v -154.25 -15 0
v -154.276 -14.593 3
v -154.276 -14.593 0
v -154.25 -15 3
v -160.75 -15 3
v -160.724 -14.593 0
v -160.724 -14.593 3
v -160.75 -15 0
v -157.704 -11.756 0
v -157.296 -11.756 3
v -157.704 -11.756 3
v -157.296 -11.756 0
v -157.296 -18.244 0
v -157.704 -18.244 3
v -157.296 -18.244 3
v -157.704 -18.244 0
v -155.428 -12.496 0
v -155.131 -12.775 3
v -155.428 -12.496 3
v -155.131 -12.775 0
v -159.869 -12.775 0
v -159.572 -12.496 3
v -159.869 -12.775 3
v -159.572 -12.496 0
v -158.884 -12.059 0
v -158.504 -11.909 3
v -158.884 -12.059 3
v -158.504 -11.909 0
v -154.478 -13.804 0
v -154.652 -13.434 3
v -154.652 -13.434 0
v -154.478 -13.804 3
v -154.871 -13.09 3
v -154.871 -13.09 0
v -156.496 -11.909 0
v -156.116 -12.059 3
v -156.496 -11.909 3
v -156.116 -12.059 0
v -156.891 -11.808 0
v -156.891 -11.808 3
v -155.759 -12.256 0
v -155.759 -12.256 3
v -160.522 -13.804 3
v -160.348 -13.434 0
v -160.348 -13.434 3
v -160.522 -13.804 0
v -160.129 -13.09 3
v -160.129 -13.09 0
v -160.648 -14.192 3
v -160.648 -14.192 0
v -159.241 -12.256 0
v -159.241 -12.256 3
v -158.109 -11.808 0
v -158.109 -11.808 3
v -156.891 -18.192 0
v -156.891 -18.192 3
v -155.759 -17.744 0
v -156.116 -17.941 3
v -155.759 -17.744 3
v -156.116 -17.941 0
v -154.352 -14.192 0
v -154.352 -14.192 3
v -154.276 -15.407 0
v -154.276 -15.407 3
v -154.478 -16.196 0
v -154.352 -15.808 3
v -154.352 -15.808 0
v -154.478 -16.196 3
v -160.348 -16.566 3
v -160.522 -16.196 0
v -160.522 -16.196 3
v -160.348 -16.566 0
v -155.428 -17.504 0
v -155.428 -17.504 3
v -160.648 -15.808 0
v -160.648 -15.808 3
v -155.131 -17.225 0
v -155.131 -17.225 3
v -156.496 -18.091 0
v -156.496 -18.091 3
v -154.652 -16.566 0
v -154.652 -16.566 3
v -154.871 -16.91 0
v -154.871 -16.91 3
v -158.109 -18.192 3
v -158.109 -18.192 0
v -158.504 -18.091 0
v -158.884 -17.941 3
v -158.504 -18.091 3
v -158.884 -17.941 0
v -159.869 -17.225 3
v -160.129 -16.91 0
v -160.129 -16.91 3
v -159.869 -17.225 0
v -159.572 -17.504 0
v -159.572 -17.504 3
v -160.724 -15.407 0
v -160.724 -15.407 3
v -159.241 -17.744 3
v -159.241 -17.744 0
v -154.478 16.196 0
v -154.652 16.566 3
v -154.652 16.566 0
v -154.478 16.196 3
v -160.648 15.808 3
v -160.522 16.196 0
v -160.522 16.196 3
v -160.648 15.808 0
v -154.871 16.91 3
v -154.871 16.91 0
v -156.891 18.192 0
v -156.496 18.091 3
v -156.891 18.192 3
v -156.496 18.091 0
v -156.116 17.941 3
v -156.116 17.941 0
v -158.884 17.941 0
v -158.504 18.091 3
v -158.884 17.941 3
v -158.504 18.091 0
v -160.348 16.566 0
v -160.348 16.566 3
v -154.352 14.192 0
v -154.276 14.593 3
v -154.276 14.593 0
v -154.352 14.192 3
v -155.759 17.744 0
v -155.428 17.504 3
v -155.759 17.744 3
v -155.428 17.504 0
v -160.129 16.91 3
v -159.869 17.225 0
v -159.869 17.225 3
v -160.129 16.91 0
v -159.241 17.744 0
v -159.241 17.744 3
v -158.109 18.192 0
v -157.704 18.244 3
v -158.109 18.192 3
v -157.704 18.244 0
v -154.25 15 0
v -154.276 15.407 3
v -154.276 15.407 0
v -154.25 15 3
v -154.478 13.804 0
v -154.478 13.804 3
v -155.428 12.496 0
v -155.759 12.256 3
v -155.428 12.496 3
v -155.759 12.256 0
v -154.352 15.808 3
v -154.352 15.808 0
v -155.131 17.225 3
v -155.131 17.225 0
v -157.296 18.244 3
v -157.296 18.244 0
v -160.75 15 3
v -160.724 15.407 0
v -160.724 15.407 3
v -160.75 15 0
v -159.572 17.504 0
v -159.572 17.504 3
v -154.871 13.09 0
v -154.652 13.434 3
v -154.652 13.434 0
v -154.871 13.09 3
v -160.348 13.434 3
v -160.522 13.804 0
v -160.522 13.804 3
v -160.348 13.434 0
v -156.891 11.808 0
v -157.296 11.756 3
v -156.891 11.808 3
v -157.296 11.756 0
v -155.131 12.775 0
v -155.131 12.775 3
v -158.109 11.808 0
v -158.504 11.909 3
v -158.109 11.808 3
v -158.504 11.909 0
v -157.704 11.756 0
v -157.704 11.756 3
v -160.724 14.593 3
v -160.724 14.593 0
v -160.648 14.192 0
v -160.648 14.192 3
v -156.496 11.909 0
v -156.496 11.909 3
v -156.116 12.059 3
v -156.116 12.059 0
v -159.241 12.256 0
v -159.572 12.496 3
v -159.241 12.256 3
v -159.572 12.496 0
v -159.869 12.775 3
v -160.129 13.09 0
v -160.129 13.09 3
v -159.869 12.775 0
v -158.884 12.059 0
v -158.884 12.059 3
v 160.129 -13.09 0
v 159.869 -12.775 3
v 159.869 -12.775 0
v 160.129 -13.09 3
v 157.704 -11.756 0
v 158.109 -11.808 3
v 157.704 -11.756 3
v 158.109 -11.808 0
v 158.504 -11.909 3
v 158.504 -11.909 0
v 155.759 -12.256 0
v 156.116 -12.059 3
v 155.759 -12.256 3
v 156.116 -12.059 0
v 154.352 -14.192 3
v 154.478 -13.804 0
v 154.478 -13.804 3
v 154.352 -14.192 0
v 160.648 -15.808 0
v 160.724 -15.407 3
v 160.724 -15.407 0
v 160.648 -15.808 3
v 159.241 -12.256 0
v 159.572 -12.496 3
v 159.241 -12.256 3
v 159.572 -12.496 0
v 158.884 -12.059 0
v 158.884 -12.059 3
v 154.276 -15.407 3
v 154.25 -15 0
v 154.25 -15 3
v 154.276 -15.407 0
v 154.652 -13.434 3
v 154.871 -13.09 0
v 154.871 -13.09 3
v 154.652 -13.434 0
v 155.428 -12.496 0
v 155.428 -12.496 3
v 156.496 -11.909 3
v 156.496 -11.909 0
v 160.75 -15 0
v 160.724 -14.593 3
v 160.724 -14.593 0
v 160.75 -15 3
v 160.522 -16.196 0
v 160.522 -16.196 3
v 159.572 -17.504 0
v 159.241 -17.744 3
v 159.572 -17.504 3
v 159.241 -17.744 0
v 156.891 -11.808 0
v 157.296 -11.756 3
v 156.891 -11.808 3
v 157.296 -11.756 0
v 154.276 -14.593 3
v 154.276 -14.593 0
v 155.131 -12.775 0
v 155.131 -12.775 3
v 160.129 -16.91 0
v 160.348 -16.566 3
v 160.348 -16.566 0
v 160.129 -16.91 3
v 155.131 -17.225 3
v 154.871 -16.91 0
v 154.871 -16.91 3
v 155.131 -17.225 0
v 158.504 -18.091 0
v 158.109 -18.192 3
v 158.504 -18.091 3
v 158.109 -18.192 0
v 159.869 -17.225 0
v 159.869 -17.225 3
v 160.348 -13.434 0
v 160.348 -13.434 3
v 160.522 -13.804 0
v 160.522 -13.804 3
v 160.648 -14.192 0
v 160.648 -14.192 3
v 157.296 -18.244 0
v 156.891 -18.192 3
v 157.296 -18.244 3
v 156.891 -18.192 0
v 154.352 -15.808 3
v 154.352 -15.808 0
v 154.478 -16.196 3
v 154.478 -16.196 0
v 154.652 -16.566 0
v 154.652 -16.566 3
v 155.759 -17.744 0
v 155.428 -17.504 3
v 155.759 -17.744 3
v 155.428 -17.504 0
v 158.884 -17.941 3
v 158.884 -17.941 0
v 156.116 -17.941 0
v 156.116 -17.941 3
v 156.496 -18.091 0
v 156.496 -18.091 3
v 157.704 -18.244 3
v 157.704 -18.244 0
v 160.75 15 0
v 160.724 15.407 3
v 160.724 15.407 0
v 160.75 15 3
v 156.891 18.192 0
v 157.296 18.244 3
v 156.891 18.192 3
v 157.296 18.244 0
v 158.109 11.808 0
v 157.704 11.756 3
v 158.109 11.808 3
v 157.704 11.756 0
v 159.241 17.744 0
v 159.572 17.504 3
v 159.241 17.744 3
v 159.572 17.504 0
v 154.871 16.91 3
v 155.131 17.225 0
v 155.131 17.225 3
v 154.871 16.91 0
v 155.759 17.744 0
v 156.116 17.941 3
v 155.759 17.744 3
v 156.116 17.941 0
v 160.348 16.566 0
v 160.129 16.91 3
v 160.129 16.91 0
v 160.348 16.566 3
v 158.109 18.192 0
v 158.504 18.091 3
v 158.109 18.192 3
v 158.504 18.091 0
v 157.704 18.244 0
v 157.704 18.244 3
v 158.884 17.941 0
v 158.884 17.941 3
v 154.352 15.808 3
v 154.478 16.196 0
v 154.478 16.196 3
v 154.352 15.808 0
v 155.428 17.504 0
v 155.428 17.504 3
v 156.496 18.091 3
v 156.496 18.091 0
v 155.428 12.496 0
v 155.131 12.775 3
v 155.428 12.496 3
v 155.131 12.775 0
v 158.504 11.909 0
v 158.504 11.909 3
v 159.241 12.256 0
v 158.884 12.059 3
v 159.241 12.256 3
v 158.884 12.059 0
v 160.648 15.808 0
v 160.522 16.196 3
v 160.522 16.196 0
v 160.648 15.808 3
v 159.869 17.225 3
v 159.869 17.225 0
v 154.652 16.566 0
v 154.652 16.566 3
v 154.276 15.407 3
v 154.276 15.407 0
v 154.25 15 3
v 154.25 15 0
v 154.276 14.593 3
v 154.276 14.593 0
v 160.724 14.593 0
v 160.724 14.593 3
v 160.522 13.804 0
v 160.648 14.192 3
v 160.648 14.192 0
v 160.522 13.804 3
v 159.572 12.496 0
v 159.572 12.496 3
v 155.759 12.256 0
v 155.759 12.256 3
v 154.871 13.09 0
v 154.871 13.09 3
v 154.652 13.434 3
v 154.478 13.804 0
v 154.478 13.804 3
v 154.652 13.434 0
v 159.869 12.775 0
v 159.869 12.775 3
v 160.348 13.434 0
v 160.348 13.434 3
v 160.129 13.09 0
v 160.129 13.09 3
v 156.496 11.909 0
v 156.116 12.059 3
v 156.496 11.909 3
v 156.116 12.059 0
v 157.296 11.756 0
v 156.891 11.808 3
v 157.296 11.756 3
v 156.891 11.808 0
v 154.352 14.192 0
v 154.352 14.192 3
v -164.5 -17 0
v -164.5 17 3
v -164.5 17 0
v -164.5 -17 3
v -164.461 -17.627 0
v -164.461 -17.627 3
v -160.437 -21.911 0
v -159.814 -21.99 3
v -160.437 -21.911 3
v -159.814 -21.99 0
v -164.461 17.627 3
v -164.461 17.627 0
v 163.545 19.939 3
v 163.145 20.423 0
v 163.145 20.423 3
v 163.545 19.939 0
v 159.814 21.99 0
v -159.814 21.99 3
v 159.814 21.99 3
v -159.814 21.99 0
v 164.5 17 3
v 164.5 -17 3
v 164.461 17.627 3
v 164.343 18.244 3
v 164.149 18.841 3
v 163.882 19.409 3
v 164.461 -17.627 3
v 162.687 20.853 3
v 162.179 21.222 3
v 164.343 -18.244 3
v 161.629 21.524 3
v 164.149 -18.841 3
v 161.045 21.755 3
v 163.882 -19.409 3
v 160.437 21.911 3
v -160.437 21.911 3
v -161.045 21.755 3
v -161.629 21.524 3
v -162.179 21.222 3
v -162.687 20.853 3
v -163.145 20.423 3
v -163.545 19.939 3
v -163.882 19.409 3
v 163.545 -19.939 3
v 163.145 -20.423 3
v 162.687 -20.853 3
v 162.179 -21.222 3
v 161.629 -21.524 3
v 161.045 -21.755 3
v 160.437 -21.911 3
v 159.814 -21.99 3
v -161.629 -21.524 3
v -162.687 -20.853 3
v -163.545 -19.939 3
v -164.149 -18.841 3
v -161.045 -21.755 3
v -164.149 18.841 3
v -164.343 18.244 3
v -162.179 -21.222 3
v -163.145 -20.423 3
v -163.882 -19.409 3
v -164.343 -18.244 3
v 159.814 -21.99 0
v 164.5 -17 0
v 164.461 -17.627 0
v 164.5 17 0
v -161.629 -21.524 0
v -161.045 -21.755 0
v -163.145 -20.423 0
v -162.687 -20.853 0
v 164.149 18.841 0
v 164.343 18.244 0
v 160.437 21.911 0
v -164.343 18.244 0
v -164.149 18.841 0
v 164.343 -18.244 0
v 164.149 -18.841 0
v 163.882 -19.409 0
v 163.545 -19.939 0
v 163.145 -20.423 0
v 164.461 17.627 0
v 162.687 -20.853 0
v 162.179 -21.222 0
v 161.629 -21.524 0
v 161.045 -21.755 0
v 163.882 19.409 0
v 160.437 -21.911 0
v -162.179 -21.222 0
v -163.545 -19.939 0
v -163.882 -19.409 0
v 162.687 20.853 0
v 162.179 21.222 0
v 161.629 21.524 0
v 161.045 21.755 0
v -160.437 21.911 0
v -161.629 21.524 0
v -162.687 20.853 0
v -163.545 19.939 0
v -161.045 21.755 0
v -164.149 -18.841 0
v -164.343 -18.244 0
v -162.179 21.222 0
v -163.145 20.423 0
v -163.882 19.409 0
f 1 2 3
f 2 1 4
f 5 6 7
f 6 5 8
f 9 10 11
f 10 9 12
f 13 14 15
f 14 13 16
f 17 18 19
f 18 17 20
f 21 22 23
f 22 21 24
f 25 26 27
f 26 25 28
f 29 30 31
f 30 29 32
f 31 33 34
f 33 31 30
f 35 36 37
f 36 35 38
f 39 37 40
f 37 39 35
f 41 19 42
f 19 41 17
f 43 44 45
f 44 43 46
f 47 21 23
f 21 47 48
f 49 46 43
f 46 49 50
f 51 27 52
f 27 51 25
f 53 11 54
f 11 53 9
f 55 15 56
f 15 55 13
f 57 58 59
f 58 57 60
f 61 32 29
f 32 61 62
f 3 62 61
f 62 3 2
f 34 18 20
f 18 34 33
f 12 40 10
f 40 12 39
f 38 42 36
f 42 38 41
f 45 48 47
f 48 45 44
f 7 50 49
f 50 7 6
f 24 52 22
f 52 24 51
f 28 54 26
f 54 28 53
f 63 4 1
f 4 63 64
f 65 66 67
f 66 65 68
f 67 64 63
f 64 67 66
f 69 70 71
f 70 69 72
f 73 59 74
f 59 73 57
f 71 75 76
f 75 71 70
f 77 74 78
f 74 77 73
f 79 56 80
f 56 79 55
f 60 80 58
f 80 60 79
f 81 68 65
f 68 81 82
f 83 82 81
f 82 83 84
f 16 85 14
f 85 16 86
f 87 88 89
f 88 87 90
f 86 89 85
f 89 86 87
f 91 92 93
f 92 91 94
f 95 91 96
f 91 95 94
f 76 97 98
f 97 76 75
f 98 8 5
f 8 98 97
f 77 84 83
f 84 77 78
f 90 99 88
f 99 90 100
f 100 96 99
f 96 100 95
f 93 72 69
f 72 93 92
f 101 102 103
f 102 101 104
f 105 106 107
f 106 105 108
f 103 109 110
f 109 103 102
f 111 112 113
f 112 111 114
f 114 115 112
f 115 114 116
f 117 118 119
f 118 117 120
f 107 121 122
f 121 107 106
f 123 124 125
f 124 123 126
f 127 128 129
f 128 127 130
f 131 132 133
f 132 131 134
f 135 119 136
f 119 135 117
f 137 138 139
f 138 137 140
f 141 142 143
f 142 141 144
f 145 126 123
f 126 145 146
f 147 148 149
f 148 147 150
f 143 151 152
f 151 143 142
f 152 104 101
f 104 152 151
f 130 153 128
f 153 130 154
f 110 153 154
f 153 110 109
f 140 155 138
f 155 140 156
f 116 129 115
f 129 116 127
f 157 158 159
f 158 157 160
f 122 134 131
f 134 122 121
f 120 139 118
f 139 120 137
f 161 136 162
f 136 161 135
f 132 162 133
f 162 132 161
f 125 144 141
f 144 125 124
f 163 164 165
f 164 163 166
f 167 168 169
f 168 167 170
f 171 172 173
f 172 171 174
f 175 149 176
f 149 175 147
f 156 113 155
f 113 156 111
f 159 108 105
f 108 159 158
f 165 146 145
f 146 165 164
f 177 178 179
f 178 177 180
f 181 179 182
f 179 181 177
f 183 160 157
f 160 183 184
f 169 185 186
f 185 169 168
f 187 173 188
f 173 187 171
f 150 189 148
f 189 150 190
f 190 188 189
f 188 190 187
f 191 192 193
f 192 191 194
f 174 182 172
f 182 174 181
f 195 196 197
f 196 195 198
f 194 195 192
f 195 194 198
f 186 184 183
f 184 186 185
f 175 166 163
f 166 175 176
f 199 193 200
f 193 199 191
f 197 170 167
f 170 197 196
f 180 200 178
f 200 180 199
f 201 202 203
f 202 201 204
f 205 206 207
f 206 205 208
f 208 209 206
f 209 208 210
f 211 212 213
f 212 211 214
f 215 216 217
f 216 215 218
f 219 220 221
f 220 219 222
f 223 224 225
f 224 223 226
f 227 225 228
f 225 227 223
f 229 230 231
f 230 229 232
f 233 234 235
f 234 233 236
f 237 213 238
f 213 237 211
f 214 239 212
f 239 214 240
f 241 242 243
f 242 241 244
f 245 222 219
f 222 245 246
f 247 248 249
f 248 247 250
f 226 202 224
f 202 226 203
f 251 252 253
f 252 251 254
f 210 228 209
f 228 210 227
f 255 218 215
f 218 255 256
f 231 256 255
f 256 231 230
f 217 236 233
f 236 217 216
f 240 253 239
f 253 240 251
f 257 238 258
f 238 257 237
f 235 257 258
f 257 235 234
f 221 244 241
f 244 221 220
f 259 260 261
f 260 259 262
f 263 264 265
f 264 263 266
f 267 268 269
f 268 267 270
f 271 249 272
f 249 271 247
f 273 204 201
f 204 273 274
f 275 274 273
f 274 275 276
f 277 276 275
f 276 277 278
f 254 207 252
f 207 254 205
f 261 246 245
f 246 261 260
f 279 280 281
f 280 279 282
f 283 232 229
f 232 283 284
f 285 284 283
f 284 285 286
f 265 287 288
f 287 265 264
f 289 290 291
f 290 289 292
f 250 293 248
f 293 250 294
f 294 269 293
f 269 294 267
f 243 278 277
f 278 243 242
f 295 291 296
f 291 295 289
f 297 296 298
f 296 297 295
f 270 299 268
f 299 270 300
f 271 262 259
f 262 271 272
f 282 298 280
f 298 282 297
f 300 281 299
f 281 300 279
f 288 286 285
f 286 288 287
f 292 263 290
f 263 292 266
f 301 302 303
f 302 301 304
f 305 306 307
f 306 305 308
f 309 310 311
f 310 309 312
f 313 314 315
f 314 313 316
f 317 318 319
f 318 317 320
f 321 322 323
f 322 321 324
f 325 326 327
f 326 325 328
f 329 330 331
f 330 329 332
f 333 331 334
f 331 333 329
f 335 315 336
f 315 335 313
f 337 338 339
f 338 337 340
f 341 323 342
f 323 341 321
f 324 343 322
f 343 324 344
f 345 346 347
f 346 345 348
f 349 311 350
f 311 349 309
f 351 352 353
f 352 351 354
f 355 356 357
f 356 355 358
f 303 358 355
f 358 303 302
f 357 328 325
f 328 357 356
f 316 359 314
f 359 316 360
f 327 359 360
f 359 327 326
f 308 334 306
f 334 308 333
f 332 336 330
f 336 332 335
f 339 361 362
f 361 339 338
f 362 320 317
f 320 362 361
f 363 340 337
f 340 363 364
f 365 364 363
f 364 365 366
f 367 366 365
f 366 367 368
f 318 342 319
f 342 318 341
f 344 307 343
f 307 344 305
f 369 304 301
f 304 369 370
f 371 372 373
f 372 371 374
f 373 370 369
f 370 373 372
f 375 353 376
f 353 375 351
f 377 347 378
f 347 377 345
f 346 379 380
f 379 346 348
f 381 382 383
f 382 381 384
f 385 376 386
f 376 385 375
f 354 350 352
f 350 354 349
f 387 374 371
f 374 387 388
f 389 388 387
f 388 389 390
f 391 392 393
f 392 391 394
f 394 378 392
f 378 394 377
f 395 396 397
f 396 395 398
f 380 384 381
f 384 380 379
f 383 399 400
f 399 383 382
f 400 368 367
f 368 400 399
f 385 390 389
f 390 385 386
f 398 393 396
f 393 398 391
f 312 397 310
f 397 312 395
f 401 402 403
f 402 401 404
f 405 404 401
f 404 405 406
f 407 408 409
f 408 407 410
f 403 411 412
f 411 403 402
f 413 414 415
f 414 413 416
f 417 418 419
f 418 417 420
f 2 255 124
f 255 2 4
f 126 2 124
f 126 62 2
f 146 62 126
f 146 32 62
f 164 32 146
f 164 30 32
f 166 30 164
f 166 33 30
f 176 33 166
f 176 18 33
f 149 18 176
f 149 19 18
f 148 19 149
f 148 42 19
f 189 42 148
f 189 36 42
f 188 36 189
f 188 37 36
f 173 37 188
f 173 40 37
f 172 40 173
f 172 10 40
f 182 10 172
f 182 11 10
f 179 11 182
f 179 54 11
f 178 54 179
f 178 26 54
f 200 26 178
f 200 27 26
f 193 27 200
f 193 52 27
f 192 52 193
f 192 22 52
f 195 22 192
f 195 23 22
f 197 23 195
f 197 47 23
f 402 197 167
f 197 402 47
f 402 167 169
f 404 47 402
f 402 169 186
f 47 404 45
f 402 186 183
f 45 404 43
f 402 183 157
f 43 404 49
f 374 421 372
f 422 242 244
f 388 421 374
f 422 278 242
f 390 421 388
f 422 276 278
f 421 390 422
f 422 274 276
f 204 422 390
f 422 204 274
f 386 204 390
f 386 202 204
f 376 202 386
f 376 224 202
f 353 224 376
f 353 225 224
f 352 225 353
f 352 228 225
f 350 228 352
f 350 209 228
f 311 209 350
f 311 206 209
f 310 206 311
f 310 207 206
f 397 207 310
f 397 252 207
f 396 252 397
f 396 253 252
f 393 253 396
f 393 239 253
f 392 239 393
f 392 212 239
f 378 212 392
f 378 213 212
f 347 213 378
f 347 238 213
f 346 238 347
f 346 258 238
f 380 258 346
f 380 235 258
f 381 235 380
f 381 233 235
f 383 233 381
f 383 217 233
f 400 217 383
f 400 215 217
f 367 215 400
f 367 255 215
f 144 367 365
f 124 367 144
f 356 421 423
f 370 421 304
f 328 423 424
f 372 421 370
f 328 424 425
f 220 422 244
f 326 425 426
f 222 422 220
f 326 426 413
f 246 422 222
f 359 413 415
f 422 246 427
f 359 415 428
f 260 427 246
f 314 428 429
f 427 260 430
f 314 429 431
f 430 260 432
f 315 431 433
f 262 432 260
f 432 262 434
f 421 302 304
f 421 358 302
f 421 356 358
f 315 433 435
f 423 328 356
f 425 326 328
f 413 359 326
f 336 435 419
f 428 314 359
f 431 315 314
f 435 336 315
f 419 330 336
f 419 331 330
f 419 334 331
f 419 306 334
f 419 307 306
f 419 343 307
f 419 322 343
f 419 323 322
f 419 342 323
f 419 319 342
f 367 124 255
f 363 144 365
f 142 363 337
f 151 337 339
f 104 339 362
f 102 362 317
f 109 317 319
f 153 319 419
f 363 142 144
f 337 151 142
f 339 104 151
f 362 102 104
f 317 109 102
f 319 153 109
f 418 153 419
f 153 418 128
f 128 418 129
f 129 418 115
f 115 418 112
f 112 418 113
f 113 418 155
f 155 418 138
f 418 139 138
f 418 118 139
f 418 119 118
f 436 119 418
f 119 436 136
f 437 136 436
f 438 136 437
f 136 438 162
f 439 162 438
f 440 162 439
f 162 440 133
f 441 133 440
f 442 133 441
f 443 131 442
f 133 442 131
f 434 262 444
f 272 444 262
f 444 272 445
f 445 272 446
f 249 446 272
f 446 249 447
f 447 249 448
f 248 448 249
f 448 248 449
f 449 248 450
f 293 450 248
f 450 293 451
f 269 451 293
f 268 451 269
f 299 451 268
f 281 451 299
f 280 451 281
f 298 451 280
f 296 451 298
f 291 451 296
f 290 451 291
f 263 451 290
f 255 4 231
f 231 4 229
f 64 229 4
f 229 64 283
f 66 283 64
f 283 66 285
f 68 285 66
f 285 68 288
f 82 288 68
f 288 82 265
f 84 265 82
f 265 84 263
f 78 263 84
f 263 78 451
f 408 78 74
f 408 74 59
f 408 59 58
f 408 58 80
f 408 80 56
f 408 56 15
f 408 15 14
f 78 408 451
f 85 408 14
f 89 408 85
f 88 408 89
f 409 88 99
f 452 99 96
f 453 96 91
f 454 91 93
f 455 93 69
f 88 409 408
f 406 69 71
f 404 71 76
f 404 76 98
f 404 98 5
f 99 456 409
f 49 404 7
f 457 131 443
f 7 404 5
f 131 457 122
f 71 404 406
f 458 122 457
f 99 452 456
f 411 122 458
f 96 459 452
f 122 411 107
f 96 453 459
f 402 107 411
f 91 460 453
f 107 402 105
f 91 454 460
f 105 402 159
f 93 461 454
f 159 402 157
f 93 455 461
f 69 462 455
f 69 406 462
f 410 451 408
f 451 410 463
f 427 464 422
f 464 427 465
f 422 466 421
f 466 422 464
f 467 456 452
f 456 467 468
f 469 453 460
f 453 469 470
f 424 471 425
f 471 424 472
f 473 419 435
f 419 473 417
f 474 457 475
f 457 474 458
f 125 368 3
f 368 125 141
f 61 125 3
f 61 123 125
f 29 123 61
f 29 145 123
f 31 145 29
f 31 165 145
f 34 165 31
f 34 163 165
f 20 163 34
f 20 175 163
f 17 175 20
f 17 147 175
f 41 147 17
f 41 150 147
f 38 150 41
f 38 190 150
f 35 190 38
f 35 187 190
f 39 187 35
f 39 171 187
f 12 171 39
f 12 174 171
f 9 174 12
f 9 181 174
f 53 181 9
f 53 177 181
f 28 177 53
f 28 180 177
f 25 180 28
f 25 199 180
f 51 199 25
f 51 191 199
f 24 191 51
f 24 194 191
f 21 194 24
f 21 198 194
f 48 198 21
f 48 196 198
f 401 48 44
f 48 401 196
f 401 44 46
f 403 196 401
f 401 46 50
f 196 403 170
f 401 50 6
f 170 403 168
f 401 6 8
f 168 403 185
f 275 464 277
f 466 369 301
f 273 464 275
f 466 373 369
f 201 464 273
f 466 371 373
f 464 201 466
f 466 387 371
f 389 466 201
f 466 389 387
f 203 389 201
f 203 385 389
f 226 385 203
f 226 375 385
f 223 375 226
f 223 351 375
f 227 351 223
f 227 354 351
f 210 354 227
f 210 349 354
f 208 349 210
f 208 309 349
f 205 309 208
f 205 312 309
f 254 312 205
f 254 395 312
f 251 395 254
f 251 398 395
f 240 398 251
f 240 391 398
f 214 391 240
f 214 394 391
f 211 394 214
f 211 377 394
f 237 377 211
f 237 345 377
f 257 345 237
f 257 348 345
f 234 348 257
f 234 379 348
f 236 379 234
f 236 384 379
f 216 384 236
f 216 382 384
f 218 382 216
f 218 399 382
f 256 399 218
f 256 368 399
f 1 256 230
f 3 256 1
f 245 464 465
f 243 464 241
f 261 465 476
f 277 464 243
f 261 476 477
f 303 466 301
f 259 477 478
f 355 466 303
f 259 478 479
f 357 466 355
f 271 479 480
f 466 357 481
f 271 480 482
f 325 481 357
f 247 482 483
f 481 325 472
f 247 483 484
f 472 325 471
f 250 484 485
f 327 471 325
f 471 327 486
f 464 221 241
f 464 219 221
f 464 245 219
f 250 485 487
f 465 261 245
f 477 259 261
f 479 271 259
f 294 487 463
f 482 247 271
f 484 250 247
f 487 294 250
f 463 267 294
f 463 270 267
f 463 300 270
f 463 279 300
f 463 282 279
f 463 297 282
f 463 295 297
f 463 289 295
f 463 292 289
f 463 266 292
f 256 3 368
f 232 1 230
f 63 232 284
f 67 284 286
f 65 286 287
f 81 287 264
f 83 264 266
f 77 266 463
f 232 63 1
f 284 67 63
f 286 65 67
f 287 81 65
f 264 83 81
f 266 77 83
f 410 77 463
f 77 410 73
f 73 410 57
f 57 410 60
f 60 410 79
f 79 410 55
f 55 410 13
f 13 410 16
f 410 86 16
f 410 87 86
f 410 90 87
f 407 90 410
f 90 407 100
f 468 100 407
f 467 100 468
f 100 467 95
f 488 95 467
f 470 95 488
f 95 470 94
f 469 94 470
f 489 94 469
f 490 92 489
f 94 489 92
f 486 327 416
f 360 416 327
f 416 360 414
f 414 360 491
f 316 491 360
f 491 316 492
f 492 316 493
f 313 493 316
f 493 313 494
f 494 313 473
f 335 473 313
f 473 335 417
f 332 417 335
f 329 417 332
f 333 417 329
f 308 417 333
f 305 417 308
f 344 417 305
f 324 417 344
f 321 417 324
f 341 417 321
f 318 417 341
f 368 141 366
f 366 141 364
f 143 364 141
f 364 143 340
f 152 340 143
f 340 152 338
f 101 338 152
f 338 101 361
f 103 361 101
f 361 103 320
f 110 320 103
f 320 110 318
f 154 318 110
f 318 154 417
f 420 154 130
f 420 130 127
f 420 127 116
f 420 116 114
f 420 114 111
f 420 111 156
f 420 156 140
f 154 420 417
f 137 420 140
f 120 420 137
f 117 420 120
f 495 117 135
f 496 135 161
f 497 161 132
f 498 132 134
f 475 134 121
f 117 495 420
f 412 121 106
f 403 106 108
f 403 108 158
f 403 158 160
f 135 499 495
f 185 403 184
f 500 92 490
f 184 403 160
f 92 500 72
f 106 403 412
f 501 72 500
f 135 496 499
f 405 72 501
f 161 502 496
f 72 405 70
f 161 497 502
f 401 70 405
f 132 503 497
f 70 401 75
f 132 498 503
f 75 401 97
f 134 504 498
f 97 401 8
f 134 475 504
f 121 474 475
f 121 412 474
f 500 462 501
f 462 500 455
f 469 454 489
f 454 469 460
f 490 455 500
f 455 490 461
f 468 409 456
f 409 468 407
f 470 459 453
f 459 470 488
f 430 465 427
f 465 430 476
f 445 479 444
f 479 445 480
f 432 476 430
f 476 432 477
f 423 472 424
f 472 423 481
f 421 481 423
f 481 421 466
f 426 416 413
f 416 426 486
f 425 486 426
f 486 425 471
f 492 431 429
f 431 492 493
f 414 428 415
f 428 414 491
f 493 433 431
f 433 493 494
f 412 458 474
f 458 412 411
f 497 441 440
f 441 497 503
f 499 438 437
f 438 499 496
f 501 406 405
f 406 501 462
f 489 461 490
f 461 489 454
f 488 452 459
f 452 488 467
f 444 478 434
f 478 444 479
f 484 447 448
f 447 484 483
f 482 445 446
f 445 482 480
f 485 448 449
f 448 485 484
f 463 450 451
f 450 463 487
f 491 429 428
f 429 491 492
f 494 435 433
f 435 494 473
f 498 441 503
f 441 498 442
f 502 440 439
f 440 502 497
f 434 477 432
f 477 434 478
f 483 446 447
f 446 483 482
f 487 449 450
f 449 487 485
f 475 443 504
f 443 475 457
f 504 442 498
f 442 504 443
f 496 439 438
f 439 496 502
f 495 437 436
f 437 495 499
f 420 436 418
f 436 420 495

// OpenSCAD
$fn = 50;


difference() {
	union() {
		hull() {
			translate(v = [-159.5000000000, 17.0000000000, 0]) {
				cylinder(h = 3, r = 5);
			}
			translate(v = [159.5000000000, 17.0000000000, 0]) {
				cylinder(h = 3, r = 5);
			}
			translate(v = [-159.5000000000, -17.0000000000, 0]) {
				cylinder(h = 3, r = 5);
			}
			translate(v = [159.5000000000, -17.0000000000, 0]) {
				cylinder(h = 3, r = 5);
			}
		}
	}
	union() {
		translate(v = [-157.5000000000, -15.0000000000, -100.0000000000]) {
			cylinder(h = 200, r = 3.2500000000);
		}
		translate(v = [-157.5000000000, 15.0000000000, -100.0000000000]) {
			cylinder(h = 200, r = 3.2500000000);
		}
		translate(v = [157.5000000000, -15.0000000000, -100.0000000000]) {
			cylinder(h = 200, r = 3.2500000000);
		}
		translate(v = [157.5000000000, 15.0000000000, -100.0000000000]) {
			cylinder(h = 200, r = 3.2500000000);
		}
	}
}
